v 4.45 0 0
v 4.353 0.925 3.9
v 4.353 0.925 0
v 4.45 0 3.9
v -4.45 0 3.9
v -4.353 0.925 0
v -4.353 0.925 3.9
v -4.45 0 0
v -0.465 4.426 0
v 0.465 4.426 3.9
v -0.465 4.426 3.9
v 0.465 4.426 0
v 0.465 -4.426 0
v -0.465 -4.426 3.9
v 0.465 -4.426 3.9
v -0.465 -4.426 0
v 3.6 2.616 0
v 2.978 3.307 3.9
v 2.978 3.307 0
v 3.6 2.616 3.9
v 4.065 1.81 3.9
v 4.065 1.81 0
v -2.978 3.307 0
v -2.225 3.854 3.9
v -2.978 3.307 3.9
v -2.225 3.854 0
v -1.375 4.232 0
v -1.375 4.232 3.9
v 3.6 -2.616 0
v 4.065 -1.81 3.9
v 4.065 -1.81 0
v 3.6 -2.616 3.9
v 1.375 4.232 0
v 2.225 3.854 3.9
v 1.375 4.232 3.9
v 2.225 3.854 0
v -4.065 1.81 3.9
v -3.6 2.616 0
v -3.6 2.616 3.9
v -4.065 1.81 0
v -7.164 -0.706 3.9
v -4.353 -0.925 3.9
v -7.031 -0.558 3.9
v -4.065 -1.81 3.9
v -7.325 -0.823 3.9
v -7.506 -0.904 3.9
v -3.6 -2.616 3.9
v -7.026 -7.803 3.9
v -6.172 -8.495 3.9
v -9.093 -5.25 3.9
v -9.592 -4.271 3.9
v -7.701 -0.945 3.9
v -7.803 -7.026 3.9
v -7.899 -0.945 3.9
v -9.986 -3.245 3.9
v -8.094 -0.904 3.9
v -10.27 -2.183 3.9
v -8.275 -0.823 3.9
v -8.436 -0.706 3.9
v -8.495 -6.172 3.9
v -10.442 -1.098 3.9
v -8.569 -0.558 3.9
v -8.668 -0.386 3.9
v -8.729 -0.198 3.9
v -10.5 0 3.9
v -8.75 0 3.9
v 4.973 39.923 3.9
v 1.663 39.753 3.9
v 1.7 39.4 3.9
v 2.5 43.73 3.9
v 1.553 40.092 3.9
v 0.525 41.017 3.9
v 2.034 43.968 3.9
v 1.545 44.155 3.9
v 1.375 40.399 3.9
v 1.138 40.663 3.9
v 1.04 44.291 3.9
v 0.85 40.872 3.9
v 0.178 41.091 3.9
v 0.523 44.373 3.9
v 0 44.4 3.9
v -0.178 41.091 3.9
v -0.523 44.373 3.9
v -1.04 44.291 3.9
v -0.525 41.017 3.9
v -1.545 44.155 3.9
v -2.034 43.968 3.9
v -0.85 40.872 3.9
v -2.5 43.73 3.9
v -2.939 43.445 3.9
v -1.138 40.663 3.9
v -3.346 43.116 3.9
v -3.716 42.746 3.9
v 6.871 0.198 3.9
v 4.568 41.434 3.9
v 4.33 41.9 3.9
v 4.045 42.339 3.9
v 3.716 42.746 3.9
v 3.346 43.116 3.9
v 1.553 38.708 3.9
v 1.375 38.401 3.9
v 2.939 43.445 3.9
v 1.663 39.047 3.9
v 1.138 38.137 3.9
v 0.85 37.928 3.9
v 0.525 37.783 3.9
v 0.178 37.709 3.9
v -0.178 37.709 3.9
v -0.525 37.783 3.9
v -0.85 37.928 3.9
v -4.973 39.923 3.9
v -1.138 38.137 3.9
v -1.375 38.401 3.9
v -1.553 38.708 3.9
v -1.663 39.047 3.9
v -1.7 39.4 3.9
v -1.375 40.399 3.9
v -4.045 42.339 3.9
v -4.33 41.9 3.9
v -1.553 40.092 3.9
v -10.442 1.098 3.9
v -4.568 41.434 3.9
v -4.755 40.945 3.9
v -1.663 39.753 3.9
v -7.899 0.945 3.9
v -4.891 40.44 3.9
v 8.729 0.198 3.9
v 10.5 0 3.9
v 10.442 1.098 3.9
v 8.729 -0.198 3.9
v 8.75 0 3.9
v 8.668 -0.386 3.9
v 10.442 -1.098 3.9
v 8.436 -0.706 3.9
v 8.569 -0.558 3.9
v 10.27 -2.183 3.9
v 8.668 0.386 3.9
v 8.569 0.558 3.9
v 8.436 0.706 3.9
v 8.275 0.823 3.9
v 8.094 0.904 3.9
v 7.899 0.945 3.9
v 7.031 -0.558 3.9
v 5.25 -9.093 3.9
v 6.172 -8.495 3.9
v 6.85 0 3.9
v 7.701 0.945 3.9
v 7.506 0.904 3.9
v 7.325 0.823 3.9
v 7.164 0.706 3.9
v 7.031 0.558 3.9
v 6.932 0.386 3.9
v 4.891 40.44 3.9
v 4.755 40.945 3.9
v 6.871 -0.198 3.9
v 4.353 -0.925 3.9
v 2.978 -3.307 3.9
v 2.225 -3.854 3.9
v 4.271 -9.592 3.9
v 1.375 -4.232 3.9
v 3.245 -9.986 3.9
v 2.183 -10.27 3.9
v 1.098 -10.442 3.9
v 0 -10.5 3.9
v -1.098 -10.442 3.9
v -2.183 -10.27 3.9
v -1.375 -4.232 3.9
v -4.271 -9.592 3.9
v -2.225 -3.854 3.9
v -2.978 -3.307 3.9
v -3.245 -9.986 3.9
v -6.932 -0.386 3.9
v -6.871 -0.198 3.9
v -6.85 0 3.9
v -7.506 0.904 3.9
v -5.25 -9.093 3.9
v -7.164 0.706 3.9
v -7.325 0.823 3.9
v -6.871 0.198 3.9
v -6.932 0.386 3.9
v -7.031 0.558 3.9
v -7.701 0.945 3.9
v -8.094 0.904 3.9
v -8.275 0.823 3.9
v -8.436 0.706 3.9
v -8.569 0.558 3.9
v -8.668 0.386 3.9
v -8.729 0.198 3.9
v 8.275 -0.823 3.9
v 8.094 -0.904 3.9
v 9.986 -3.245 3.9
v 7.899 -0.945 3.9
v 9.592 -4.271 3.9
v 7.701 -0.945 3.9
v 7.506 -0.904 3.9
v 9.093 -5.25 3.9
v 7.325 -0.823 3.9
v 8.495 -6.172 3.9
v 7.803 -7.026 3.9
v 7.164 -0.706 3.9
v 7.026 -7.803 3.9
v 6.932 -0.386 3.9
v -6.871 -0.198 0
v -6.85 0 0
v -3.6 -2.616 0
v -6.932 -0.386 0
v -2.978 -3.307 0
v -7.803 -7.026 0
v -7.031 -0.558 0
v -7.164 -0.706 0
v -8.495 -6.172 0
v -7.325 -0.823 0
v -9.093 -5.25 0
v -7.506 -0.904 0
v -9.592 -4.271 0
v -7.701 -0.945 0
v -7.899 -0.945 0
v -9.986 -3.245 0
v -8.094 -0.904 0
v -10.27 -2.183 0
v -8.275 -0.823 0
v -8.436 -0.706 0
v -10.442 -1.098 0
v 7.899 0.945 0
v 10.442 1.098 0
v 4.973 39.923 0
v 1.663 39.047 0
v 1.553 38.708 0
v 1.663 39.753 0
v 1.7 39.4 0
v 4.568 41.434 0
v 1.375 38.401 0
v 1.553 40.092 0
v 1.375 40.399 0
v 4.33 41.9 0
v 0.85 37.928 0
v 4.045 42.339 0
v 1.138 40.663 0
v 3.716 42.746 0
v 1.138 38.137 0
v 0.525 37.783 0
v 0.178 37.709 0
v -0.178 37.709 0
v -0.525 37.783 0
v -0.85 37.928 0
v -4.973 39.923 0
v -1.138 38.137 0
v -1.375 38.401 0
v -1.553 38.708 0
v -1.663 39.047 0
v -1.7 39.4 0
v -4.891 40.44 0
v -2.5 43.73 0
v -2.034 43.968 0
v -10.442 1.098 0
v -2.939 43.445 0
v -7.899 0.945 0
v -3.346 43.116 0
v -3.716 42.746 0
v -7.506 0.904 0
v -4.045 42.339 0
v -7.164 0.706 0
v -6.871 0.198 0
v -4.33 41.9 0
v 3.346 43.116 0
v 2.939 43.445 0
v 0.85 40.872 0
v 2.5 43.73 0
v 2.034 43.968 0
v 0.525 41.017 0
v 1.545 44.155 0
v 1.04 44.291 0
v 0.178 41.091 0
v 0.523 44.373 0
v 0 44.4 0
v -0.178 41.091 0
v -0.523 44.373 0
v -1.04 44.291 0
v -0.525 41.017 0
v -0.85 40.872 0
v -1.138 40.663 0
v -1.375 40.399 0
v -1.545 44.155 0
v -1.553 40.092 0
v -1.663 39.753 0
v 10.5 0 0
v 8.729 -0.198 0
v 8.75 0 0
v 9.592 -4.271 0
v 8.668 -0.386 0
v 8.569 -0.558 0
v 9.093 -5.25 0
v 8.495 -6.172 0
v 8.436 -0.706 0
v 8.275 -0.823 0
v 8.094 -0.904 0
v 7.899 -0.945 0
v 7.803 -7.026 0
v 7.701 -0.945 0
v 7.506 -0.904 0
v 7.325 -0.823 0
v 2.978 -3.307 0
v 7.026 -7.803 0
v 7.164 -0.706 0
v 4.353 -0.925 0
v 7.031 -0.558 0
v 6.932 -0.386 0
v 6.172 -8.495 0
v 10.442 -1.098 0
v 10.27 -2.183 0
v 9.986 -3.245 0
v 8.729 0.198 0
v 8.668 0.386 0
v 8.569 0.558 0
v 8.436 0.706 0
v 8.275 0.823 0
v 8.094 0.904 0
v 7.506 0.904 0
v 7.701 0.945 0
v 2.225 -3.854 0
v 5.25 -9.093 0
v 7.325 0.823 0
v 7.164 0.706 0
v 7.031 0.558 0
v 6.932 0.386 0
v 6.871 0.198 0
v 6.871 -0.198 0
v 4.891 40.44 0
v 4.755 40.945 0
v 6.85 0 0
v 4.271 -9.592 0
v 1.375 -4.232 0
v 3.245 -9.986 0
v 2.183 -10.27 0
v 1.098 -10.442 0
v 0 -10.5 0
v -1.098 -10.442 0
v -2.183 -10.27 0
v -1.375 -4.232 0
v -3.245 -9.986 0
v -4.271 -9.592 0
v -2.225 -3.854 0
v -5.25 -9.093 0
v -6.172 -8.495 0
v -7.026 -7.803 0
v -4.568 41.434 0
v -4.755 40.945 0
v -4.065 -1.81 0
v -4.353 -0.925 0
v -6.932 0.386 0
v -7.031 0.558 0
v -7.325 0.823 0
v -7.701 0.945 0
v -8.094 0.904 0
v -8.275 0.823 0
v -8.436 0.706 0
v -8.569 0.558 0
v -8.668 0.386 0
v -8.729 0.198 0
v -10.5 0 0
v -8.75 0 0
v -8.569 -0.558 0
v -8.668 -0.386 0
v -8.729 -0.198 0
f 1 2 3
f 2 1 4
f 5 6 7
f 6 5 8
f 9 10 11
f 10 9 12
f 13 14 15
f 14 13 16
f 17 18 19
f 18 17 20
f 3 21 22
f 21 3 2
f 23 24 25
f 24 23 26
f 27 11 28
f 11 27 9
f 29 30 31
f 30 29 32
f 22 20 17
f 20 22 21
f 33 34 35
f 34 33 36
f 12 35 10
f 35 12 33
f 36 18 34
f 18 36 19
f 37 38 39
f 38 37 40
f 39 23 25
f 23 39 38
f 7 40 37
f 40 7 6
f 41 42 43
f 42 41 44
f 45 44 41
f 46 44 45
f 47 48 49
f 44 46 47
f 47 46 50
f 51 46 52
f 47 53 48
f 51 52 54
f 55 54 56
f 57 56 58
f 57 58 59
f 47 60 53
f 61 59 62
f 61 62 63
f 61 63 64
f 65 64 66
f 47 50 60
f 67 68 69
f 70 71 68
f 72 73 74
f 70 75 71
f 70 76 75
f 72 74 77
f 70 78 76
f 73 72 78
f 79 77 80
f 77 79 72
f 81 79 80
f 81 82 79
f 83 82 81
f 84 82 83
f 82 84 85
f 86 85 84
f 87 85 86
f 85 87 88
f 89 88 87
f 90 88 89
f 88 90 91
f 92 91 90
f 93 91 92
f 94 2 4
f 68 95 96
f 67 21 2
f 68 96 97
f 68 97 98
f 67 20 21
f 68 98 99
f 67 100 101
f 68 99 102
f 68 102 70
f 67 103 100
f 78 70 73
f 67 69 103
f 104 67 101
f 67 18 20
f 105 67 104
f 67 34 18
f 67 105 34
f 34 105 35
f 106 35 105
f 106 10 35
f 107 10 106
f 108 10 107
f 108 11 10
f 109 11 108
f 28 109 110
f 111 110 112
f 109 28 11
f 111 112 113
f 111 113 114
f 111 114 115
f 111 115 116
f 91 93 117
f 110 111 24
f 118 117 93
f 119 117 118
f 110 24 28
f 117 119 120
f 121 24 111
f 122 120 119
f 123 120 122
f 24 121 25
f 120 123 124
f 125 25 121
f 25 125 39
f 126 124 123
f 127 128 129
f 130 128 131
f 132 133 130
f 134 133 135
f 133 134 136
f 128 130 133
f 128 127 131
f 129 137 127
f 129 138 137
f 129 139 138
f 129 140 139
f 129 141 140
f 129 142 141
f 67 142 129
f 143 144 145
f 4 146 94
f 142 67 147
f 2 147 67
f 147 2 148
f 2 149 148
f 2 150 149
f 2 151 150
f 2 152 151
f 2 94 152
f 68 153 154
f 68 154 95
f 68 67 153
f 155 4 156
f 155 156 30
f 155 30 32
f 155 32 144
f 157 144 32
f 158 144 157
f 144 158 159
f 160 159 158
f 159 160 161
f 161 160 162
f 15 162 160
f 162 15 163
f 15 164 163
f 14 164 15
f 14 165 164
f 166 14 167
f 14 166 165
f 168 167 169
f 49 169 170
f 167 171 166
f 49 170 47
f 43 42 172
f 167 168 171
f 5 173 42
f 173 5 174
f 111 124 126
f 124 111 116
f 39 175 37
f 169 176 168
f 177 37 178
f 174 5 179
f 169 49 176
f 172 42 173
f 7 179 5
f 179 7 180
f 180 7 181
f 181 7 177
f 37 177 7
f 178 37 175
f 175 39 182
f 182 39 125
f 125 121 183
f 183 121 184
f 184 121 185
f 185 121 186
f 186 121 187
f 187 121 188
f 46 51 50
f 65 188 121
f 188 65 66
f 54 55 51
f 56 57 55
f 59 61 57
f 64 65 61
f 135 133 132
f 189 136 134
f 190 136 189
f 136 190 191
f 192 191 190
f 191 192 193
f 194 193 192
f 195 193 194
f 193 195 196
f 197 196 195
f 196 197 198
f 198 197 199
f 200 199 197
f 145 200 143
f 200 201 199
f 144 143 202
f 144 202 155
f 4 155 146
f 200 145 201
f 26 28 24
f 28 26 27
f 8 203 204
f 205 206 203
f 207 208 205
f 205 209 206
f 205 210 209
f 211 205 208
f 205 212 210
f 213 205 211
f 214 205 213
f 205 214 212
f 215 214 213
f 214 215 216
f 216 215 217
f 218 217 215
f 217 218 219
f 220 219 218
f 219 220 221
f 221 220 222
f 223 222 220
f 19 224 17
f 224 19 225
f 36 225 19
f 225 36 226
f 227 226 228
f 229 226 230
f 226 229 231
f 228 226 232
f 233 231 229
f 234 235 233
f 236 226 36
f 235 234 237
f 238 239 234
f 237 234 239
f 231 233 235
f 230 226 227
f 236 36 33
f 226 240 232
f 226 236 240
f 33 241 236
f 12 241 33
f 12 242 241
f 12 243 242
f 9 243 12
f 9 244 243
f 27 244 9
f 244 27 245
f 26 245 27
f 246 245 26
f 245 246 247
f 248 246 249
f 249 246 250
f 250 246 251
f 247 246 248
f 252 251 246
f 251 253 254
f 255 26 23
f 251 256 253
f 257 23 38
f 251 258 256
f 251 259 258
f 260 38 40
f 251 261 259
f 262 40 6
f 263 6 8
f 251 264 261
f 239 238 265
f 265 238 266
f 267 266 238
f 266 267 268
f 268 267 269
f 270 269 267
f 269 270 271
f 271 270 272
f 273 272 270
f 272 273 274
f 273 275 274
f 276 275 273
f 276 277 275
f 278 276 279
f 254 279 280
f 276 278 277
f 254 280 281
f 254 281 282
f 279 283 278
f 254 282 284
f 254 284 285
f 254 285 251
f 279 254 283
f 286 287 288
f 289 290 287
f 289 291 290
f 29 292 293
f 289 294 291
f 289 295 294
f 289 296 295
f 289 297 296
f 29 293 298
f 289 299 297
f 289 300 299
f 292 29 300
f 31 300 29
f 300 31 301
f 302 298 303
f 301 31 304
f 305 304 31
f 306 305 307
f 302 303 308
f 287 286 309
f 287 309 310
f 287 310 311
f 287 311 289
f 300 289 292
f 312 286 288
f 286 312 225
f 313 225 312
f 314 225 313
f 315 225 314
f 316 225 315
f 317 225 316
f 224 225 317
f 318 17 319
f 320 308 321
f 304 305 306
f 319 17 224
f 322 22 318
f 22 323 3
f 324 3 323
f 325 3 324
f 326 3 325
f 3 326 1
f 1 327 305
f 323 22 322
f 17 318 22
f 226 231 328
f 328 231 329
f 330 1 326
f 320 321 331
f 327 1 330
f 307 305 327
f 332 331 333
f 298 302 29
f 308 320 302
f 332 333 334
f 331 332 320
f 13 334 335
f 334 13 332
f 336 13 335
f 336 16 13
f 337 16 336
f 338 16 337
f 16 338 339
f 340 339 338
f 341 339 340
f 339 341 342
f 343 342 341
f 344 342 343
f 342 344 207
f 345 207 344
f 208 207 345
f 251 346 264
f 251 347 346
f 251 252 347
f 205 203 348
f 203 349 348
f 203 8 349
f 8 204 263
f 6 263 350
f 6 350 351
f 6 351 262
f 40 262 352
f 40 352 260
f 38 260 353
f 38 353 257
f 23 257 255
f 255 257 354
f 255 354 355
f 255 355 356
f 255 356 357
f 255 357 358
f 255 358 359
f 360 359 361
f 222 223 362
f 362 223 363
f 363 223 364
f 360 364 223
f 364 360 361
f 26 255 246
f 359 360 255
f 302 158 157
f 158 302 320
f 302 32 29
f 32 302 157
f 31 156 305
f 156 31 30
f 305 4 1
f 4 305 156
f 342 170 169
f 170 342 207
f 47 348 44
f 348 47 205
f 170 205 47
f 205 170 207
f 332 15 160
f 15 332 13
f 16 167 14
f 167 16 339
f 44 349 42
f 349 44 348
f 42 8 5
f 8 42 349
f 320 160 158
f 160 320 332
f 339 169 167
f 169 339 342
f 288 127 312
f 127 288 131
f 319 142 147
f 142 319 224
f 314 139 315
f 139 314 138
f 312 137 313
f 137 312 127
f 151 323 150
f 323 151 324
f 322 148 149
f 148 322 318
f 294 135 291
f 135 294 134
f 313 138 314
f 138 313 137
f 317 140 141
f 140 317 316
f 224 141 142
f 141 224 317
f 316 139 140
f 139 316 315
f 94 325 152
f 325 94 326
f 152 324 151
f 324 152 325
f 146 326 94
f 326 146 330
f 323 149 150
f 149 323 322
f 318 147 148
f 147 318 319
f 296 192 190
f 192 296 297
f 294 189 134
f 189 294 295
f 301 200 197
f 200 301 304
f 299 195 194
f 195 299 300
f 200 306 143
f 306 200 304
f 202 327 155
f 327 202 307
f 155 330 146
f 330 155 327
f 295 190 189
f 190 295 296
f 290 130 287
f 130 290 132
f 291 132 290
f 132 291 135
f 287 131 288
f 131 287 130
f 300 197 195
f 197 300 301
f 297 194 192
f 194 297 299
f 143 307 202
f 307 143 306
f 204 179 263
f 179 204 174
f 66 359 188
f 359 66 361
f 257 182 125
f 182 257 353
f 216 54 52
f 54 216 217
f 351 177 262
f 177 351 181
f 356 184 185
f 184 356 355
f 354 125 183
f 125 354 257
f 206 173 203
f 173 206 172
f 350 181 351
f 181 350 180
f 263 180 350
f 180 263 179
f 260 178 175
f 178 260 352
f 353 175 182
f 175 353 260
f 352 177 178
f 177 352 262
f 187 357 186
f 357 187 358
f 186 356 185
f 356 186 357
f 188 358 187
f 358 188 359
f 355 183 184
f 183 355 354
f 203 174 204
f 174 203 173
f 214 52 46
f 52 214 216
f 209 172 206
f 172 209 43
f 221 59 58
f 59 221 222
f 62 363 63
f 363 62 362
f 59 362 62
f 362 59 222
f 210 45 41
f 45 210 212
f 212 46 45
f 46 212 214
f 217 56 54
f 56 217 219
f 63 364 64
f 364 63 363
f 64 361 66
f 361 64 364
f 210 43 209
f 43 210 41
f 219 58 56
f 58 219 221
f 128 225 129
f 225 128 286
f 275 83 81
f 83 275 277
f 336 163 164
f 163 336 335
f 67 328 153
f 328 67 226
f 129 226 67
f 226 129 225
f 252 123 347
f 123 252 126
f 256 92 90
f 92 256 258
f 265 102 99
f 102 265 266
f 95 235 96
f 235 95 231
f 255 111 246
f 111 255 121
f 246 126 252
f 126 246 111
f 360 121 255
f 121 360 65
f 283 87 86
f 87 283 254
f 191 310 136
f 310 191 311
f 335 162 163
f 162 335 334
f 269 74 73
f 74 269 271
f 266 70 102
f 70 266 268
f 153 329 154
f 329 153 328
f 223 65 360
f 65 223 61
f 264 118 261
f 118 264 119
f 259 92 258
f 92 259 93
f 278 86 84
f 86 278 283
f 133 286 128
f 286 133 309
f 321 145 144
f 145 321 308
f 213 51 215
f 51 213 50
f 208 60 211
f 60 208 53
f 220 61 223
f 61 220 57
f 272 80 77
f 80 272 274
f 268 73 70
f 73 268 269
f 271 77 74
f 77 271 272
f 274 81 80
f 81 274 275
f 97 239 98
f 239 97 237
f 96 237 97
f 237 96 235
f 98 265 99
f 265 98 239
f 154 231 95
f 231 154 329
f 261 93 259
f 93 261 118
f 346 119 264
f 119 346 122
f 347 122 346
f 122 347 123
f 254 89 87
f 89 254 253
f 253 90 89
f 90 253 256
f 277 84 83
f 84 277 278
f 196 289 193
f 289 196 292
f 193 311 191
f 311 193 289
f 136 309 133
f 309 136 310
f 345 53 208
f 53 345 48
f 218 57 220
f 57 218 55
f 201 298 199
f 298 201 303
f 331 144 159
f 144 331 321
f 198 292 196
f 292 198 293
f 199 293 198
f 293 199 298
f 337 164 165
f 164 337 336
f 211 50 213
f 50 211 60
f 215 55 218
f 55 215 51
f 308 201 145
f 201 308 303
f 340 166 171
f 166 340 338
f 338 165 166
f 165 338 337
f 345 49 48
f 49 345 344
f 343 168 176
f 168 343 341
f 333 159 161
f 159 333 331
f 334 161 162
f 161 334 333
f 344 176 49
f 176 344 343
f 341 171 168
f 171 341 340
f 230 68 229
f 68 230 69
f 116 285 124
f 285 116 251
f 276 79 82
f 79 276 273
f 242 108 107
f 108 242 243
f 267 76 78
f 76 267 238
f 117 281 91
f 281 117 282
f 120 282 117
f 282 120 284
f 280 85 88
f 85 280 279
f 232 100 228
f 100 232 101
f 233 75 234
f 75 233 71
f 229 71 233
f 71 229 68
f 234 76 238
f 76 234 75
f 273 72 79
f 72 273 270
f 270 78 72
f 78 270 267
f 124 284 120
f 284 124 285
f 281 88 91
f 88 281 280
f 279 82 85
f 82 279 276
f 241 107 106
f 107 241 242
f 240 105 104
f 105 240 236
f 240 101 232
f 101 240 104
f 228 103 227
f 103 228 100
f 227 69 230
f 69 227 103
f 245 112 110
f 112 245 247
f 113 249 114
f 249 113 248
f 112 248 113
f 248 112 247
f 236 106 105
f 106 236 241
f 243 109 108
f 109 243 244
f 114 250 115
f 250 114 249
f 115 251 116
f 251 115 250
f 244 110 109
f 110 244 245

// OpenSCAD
//general
$fn = 30;                  //convexity of general curved faces
thickness = 3.9;             //thickness of arm

//circular servo horn measurements
horn_diameter = 21;             //diameter of the circular horn
horn_center_hole = 8.9;          //diameter of the center hole (for screw)
horn_outer_hole_diameters = 1.9;  //diameter of the outer holes for screwing down horn
horn_outer_holes_center_dist = 7.8;//distance from center to the outer holes

//arm specific stuff
arm_length = 39.4;               //horn center to horn center distance for arm length

pivot_diameter = 10;            //diameter of pivoting end
free_turning3mm = 3.4;          //diameter of hole for free turning motion

module horn(){
   cylinder(d=horn_center_hole, h=thickness);
   translate([horn_outer_holes_center_dist, 0, 0])
   cylinder(d=horn_outer_hole_diameters, h=thickness);
   translate([-horn_outer_holes_center_dist, 0, 0])
   cylinder(d=horn_outer_hole_diameters, h=thickness);
}

difference(){
   hull(){
      cylinder(d=horn_diameter,h=thickness, $fn = 60);
      translate([0,arm_length,0])
      cylinder(d=pivot_diameter,h=thickness, $fn = 60);
   }
   horn();
   translate([0,arm_length,0])
   cylinder(d=free_turning3mm,h=thickness);
}
